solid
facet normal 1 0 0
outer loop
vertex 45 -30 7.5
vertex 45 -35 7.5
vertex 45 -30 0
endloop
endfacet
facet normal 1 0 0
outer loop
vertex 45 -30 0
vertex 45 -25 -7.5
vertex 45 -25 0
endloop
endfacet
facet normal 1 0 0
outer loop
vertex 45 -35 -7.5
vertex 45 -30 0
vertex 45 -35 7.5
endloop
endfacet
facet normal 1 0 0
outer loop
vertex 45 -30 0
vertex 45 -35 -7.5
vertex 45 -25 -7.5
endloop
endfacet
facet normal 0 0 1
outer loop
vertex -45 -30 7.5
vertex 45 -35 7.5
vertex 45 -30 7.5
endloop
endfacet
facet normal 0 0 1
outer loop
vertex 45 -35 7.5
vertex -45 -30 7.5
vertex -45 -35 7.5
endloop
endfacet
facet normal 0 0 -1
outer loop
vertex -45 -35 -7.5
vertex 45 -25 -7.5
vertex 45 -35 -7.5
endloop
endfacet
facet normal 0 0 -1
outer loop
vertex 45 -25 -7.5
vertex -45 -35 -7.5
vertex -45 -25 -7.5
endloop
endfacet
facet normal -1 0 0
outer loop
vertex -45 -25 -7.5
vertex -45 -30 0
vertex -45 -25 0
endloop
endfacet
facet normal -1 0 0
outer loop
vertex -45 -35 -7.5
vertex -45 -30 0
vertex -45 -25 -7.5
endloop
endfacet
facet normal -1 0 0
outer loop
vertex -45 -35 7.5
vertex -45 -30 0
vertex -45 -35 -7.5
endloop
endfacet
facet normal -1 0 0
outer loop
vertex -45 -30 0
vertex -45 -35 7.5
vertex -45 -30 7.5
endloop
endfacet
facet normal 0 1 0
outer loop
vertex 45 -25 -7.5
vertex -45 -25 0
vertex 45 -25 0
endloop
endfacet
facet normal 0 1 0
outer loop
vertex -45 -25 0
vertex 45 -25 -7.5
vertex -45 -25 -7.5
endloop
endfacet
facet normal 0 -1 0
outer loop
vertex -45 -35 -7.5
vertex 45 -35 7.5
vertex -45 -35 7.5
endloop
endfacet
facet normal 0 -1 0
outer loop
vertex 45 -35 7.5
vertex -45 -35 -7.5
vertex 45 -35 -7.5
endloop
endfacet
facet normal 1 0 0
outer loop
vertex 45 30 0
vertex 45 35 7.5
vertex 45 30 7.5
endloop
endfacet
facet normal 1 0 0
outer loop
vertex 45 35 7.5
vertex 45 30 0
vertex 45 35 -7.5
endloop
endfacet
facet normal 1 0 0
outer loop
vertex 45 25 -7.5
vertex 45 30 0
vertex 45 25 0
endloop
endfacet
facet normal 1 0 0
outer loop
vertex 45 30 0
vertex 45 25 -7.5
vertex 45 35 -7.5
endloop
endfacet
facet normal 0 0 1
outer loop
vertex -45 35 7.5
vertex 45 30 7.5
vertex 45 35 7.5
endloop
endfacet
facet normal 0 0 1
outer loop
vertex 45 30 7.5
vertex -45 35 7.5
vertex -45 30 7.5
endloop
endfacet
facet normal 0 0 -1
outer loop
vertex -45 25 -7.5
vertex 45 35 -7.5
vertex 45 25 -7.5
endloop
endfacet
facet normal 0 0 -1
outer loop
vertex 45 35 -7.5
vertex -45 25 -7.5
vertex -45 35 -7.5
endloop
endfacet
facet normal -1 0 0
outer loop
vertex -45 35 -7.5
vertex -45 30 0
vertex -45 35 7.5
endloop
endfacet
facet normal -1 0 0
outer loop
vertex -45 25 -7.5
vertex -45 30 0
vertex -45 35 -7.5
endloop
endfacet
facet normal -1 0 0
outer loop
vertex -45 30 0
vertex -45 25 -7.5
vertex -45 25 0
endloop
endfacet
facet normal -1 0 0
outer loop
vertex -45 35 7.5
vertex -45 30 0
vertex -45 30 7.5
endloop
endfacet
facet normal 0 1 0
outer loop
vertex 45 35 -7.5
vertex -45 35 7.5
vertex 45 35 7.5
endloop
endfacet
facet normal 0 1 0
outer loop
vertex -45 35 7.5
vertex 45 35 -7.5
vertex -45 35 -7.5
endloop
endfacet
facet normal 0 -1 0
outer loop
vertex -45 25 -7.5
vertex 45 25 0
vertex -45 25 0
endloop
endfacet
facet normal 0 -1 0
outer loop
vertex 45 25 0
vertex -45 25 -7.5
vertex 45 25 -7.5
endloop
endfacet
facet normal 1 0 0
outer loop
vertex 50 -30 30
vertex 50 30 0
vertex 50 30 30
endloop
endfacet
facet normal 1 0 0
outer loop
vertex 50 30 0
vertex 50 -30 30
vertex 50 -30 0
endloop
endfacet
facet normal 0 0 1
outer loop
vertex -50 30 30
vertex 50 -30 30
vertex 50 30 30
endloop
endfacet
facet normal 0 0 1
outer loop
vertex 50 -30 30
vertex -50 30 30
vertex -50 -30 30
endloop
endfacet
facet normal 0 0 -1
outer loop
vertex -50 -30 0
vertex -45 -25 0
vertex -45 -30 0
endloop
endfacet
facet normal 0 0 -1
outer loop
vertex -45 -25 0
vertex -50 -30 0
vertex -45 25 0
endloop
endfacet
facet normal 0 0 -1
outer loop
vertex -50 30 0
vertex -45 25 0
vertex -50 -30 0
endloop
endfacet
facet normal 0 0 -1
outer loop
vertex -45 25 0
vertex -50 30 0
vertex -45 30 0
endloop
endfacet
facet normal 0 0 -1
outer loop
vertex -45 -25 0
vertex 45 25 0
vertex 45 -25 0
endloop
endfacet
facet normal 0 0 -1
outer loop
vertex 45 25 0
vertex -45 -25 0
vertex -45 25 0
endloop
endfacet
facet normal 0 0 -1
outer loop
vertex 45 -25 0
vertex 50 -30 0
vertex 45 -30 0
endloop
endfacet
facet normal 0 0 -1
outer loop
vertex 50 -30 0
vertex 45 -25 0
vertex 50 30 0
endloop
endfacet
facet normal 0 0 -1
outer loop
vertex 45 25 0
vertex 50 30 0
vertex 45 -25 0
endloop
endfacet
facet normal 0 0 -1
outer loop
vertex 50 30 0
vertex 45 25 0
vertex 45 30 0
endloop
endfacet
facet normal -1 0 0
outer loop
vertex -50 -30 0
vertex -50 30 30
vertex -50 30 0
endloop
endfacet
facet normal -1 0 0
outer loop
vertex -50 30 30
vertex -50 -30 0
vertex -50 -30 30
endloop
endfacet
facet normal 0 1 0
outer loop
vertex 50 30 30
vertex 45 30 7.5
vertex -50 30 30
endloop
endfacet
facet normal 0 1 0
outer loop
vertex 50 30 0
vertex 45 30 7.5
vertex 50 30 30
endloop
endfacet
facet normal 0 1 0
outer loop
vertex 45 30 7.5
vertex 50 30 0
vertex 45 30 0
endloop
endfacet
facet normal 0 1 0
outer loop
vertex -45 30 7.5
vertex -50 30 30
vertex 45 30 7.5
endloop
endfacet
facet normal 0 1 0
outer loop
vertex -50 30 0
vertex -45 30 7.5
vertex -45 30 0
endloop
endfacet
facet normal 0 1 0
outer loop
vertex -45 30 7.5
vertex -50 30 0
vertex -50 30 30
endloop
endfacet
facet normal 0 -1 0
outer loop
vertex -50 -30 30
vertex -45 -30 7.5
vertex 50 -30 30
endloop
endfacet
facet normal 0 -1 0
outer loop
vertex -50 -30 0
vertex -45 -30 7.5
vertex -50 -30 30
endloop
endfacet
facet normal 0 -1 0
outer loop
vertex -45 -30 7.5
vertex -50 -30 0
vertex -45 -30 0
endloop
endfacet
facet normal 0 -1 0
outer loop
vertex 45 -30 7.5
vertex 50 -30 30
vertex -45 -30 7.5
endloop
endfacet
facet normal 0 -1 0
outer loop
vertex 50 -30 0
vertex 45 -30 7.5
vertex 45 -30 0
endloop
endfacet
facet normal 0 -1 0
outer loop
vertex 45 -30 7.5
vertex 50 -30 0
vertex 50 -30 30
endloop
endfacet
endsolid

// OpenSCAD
// Simple Tank Model in OpenSCAD

// Tank dimensions
tank_length = 100;
tank_width = 60;
tank_height = 30;
turret_diameter = 40;
turret_height = 20;
barrel_length = 50;
barrel_diameter = 5;

// Tank body
module tank_body() {
    hull();
    tracks();
}

// Hull
module hull() {
    translate([ 0, 0, tank_height / 2 ] )
        cube( [ tank_length, tank_width, tank_height ], true);
}

// Tracks
module tracks() {
    track_width = 10;
    track_height = tank_height / 2;
    track_length = tank_length * 0.9;

    translate( [ 0, -tank_width / 2, 0 ] )
        cube( [ track_length, track_width, track_height ], true);

    translate( [ 0, tank_width / 2, 0] )
        cube([track_length, track_width, track_height], true);
}

// Assemble the tank
module tank() {
    tank_body();
}

tank();
